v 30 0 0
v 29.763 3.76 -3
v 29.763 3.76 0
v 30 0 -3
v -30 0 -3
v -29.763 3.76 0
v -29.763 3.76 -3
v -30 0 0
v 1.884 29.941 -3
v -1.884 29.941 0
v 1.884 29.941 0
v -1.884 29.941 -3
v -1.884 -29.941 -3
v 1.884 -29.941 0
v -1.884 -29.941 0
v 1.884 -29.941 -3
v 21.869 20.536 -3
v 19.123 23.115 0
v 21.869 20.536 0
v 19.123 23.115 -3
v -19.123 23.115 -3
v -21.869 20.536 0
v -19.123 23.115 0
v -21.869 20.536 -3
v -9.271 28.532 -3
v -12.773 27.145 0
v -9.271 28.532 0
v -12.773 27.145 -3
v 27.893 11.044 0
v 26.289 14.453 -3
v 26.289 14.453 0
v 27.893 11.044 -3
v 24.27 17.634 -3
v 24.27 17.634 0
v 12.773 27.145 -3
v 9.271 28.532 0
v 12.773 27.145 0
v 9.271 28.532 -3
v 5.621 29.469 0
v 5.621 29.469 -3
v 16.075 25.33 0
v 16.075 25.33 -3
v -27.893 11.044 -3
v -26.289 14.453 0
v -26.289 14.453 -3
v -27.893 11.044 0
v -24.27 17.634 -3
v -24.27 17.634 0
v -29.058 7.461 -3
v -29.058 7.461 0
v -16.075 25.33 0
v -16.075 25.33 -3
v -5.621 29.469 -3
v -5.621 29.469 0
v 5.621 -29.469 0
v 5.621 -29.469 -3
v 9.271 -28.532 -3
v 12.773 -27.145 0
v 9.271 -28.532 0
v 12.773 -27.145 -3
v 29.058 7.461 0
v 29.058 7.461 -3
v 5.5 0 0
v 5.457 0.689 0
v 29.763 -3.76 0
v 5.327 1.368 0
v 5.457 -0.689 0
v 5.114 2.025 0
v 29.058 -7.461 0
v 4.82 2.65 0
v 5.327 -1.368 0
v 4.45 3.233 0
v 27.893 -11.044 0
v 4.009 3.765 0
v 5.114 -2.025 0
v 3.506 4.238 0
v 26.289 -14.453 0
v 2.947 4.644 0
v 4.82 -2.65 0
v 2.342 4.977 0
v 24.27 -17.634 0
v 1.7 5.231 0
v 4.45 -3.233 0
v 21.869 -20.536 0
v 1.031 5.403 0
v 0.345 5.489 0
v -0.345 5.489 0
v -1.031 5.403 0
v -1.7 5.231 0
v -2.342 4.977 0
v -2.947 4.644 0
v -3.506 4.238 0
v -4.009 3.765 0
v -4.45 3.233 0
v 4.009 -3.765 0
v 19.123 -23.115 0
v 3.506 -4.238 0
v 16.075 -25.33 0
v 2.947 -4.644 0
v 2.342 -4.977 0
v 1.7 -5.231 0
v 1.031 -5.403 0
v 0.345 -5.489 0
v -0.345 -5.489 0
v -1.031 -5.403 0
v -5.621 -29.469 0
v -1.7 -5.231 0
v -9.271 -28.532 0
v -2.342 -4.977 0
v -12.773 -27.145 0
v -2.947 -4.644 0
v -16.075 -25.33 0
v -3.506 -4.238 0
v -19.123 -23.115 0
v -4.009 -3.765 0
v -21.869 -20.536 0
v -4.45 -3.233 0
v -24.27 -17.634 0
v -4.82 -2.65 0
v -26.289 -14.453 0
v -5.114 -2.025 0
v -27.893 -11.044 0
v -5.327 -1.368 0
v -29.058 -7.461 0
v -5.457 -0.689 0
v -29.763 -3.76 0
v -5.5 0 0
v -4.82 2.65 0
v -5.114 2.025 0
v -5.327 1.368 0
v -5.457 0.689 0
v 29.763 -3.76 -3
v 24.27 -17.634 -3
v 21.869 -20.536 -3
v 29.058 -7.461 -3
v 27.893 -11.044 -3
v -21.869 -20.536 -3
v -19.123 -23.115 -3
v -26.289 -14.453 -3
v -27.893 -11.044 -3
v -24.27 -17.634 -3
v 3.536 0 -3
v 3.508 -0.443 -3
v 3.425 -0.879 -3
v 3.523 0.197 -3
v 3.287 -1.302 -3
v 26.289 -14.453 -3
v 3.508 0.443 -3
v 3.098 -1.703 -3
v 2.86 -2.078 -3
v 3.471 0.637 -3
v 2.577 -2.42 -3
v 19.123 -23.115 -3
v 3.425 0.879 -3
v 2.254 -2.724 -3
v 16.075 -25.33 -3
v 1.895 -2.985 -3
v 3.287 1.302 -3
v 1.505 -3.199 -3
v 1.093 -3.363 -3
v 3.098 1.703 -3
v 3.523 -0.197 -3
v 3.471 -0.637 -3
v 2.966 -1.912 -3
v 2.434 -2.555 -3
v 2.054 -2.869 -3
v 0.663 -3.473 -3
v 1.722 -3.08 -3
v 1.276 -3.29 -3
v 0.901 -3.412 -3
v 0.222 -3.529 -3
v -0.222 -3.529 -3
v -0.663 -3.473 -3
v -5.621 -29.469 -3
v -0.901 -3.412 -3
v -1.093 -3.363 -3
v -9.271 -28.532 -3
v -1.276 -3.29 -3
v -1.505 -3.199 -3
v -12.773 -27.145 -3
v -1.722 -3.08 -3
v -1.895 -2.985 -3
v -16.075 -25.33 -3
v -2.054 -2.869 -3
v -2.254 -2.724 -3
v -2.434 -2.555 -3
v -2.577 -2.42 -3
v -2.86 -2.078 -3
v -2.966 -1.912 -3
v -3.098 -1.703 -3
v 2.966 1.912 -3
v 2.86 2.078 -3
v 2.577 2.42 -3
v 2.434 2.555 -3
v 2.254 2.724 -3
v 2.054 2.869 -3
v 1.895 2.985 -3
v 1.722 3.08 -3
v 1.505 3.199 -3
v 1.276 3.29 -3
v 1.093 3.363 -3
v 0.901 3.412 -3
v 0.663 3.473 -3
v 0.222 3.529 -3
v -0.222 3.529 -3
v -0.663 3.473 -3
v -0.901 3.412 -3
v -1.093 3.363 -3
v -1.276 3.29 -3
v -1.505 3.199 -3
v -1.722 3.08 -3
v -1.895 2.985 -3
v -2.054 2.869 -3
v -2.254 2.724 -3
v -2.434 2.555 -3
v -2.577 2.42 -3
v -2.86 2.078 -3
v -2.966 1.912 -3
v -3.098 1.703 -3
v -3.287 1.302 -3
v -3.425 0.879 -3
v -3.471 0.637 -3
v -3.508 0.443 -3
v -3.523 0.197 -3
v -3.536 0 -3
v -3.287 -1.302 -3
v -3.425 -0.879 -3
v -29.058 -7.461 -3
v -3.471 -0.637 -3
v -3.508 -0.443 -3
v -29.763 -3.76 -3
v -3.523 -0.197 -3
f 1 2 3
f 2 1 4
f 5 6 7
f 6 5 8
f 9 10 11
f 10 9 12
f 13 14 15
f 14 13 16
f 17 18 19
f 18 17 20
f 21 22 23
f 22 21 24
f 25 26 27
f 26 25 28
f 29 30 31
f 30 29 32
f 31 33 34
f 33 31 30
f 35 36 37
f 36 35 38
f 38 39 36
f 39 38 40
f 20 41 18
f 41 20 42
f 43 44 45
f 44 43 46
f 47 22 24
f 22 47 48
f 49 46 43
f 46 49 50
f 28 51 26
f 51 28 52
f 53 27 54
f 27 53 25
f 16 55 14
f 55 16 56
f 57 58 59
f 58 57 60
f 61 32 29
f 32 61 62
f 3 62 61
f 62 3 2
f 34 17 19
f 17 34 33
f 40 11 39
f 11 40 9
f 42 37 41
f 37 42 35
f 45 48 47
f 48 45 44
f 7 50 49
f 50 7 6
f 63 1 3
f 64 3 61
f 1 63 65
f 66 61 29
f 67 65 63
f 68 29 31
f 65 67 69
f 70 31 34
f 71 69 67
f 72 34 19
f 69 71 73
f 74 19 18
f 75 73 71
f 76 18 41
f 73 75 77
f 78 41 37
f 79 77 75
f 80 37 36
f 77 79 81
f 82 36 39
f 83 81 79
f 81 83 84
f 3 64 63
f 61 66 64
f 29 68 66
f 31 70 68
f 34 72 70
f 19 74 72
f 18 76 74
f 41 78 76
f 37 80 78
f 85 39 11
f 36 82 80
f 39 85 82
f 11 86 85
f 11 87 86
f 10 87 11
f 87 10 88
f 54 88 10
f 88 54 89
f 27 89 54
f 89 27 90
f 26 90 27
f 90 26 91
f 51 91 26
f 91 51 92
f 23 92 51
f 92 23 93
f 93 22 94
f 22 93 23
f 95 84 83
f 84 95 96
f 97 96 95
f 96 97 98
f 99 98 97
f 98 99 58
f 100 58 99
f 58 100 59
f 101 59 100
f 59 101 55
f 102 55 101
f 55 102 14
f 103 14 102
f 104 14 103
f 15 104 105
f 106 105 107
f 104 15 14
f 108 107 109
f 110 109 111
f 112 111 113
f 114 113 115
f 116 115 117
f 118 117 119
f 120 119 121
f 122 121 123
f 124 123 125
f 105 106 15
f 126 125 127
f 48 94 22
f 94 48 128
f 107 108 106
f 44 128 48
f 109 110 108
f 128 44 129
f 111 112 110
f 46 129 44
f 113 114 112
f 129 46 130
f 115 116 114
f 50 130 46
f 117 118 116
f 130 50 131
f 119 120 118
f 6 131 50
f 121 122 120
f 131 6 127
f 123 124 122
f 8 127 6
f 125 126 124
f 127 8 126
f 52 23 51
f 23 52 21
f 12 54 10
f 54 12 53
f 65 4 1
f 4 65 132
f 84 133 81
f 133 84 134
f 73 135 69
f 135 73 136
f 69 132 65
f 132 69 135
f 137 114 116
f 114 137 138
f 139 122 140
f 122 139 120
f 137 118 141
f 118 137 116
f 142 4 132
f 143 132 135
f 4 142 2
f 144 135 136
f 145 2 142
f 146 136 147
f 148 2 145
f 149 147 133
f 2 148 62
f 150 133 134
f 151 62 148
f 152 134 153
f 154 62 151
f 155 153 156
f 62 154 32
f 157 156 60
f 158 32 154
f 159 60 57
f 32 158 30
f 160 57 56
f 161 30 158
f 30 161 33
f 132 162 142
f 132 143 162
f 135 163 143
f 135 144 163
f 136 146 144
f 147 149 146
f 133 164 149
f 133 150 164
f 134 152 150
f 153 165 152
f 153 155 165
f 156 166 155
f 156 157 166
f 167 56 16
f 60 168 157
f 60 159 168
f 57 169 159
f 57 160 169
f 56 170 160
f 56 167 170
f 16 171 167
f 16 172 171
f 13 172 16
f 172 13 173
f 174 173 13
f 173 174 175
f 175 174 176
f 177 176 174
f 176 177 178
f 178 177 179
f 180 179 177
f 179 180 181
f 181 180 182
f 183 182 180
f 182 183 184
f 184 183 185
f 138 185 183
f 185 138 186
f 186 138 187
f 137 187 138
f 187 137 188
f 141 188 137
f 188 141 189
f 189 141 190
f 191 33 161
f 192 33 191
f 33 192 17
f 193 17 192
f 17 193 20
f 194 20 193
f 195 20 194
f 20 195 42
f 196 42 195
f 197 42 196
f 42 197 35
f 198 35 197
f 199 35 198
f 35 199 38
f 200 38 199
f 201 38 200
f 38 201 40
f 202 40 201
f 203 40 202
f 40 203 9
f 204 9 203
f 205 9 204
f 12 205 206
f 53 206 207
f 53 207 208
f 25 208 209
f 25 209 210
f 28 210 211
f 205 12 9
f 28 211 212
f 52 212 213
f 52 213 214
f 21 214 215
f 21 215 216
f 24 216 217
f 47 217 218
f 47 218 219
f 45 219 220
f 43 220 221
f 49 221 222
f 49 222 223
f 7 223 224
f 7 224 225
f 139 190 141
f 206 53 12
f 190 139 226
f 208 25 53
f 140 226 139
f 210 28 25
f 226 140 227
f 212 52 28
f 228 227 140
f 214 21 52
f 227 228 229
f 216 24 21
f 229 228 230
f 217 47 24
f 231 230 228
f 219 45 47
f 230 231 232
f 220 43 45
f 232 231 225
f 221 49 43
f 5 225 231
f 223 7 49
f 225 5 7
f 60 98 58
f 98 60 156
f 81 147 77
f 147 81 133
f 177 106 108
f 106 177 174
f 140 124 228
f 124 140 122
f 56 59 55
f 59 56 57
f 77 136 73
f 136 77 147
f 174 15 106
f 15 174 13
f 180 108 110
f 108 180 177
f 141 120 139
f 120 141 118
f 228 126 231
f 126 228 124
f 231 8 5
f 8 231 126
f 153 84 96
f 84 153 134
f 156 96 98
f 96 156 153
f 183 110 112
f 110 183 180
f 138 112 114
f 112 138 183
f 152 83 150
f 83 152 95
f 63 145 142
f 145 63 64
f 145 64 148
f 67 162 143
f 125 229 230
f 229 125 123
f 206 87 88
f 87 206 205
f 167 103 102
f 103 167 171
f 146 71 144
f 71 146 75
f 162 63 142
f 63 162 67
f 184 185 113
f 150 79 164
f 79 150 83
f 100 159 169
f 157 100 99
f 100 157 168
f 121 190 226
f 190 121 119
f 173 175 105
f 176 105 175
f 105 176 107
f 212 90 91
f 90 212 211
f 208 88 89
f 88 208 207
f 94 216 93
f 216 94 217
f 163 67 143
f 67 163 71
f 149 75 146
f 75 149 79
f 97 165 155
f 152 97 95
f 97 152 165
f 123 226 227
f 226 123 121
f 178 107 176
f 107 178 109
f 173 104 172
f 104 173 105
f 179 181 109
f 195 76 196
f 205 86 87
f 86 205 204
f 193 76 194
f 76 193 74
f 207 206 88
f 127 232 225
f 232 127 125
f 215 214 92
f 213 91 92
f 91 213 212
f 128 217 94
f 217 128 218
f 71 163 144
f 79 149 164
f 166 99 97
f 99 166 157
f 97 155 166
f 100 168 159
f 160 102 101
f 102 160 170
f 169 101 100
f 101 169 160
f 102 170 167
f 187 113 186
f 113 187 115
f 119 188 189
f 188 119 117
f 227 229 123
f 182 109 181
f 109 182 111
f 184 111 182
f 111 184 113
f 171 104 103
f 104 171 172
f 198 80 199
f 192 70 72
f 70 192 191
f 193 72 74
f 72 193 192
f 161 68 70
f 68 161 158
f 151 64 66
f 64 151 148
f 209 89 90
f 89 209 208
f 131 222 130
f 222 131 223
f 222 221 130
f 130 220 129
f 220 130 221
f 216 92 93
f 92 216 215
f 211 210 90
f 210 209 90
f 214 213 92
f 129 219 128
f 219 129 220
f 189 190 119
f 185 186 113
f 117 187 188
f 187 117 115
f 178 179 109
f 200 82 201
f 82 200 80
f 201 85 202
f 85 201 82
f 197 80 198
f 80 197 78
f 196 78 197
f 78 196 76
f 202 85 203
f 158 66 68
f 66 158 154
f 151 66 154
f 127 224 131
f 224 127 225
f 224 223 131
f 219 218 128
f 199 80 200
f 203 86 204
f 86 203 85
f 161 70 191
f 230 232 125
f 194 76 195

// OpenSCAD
$fn = 50;


difference() {
	union() {
		translate(v = [0, 0, -3.0000000000]) {
			cylinder(h = 3, r = 30.0000000000);
		}
		translate(v = [0, 0, -3.0000000000]) {
			cylinder(h = 3, r = 2.8750000000);
		}
	}
	union() {
		translate(v = [0, 0, 0]) {
			rotate(a = [0, 0, 0]) {
				difference() {
					union() {
						translate(v = [0, 0, -3.0000000000]) {
							cylinder(h = 3, r = 2.2500000000);
						}
						translate(v = [0, 0, -4.2000000000]) {
							cylinder(h = 4.2000000000, r1 = 2.7500000000, r2 = 5.5000000000);
						}
						translate(v = [0, 0, -3.0000000000]) {
							cylinder(h = 3, r = 2.7500000000);
						}
						translate(v = [0, 0, -3.0000000000]) {
							cylinder(h = 3, r = 2.2500000000);
						}
					}
					union();
				}
			}
		}
	}
}
